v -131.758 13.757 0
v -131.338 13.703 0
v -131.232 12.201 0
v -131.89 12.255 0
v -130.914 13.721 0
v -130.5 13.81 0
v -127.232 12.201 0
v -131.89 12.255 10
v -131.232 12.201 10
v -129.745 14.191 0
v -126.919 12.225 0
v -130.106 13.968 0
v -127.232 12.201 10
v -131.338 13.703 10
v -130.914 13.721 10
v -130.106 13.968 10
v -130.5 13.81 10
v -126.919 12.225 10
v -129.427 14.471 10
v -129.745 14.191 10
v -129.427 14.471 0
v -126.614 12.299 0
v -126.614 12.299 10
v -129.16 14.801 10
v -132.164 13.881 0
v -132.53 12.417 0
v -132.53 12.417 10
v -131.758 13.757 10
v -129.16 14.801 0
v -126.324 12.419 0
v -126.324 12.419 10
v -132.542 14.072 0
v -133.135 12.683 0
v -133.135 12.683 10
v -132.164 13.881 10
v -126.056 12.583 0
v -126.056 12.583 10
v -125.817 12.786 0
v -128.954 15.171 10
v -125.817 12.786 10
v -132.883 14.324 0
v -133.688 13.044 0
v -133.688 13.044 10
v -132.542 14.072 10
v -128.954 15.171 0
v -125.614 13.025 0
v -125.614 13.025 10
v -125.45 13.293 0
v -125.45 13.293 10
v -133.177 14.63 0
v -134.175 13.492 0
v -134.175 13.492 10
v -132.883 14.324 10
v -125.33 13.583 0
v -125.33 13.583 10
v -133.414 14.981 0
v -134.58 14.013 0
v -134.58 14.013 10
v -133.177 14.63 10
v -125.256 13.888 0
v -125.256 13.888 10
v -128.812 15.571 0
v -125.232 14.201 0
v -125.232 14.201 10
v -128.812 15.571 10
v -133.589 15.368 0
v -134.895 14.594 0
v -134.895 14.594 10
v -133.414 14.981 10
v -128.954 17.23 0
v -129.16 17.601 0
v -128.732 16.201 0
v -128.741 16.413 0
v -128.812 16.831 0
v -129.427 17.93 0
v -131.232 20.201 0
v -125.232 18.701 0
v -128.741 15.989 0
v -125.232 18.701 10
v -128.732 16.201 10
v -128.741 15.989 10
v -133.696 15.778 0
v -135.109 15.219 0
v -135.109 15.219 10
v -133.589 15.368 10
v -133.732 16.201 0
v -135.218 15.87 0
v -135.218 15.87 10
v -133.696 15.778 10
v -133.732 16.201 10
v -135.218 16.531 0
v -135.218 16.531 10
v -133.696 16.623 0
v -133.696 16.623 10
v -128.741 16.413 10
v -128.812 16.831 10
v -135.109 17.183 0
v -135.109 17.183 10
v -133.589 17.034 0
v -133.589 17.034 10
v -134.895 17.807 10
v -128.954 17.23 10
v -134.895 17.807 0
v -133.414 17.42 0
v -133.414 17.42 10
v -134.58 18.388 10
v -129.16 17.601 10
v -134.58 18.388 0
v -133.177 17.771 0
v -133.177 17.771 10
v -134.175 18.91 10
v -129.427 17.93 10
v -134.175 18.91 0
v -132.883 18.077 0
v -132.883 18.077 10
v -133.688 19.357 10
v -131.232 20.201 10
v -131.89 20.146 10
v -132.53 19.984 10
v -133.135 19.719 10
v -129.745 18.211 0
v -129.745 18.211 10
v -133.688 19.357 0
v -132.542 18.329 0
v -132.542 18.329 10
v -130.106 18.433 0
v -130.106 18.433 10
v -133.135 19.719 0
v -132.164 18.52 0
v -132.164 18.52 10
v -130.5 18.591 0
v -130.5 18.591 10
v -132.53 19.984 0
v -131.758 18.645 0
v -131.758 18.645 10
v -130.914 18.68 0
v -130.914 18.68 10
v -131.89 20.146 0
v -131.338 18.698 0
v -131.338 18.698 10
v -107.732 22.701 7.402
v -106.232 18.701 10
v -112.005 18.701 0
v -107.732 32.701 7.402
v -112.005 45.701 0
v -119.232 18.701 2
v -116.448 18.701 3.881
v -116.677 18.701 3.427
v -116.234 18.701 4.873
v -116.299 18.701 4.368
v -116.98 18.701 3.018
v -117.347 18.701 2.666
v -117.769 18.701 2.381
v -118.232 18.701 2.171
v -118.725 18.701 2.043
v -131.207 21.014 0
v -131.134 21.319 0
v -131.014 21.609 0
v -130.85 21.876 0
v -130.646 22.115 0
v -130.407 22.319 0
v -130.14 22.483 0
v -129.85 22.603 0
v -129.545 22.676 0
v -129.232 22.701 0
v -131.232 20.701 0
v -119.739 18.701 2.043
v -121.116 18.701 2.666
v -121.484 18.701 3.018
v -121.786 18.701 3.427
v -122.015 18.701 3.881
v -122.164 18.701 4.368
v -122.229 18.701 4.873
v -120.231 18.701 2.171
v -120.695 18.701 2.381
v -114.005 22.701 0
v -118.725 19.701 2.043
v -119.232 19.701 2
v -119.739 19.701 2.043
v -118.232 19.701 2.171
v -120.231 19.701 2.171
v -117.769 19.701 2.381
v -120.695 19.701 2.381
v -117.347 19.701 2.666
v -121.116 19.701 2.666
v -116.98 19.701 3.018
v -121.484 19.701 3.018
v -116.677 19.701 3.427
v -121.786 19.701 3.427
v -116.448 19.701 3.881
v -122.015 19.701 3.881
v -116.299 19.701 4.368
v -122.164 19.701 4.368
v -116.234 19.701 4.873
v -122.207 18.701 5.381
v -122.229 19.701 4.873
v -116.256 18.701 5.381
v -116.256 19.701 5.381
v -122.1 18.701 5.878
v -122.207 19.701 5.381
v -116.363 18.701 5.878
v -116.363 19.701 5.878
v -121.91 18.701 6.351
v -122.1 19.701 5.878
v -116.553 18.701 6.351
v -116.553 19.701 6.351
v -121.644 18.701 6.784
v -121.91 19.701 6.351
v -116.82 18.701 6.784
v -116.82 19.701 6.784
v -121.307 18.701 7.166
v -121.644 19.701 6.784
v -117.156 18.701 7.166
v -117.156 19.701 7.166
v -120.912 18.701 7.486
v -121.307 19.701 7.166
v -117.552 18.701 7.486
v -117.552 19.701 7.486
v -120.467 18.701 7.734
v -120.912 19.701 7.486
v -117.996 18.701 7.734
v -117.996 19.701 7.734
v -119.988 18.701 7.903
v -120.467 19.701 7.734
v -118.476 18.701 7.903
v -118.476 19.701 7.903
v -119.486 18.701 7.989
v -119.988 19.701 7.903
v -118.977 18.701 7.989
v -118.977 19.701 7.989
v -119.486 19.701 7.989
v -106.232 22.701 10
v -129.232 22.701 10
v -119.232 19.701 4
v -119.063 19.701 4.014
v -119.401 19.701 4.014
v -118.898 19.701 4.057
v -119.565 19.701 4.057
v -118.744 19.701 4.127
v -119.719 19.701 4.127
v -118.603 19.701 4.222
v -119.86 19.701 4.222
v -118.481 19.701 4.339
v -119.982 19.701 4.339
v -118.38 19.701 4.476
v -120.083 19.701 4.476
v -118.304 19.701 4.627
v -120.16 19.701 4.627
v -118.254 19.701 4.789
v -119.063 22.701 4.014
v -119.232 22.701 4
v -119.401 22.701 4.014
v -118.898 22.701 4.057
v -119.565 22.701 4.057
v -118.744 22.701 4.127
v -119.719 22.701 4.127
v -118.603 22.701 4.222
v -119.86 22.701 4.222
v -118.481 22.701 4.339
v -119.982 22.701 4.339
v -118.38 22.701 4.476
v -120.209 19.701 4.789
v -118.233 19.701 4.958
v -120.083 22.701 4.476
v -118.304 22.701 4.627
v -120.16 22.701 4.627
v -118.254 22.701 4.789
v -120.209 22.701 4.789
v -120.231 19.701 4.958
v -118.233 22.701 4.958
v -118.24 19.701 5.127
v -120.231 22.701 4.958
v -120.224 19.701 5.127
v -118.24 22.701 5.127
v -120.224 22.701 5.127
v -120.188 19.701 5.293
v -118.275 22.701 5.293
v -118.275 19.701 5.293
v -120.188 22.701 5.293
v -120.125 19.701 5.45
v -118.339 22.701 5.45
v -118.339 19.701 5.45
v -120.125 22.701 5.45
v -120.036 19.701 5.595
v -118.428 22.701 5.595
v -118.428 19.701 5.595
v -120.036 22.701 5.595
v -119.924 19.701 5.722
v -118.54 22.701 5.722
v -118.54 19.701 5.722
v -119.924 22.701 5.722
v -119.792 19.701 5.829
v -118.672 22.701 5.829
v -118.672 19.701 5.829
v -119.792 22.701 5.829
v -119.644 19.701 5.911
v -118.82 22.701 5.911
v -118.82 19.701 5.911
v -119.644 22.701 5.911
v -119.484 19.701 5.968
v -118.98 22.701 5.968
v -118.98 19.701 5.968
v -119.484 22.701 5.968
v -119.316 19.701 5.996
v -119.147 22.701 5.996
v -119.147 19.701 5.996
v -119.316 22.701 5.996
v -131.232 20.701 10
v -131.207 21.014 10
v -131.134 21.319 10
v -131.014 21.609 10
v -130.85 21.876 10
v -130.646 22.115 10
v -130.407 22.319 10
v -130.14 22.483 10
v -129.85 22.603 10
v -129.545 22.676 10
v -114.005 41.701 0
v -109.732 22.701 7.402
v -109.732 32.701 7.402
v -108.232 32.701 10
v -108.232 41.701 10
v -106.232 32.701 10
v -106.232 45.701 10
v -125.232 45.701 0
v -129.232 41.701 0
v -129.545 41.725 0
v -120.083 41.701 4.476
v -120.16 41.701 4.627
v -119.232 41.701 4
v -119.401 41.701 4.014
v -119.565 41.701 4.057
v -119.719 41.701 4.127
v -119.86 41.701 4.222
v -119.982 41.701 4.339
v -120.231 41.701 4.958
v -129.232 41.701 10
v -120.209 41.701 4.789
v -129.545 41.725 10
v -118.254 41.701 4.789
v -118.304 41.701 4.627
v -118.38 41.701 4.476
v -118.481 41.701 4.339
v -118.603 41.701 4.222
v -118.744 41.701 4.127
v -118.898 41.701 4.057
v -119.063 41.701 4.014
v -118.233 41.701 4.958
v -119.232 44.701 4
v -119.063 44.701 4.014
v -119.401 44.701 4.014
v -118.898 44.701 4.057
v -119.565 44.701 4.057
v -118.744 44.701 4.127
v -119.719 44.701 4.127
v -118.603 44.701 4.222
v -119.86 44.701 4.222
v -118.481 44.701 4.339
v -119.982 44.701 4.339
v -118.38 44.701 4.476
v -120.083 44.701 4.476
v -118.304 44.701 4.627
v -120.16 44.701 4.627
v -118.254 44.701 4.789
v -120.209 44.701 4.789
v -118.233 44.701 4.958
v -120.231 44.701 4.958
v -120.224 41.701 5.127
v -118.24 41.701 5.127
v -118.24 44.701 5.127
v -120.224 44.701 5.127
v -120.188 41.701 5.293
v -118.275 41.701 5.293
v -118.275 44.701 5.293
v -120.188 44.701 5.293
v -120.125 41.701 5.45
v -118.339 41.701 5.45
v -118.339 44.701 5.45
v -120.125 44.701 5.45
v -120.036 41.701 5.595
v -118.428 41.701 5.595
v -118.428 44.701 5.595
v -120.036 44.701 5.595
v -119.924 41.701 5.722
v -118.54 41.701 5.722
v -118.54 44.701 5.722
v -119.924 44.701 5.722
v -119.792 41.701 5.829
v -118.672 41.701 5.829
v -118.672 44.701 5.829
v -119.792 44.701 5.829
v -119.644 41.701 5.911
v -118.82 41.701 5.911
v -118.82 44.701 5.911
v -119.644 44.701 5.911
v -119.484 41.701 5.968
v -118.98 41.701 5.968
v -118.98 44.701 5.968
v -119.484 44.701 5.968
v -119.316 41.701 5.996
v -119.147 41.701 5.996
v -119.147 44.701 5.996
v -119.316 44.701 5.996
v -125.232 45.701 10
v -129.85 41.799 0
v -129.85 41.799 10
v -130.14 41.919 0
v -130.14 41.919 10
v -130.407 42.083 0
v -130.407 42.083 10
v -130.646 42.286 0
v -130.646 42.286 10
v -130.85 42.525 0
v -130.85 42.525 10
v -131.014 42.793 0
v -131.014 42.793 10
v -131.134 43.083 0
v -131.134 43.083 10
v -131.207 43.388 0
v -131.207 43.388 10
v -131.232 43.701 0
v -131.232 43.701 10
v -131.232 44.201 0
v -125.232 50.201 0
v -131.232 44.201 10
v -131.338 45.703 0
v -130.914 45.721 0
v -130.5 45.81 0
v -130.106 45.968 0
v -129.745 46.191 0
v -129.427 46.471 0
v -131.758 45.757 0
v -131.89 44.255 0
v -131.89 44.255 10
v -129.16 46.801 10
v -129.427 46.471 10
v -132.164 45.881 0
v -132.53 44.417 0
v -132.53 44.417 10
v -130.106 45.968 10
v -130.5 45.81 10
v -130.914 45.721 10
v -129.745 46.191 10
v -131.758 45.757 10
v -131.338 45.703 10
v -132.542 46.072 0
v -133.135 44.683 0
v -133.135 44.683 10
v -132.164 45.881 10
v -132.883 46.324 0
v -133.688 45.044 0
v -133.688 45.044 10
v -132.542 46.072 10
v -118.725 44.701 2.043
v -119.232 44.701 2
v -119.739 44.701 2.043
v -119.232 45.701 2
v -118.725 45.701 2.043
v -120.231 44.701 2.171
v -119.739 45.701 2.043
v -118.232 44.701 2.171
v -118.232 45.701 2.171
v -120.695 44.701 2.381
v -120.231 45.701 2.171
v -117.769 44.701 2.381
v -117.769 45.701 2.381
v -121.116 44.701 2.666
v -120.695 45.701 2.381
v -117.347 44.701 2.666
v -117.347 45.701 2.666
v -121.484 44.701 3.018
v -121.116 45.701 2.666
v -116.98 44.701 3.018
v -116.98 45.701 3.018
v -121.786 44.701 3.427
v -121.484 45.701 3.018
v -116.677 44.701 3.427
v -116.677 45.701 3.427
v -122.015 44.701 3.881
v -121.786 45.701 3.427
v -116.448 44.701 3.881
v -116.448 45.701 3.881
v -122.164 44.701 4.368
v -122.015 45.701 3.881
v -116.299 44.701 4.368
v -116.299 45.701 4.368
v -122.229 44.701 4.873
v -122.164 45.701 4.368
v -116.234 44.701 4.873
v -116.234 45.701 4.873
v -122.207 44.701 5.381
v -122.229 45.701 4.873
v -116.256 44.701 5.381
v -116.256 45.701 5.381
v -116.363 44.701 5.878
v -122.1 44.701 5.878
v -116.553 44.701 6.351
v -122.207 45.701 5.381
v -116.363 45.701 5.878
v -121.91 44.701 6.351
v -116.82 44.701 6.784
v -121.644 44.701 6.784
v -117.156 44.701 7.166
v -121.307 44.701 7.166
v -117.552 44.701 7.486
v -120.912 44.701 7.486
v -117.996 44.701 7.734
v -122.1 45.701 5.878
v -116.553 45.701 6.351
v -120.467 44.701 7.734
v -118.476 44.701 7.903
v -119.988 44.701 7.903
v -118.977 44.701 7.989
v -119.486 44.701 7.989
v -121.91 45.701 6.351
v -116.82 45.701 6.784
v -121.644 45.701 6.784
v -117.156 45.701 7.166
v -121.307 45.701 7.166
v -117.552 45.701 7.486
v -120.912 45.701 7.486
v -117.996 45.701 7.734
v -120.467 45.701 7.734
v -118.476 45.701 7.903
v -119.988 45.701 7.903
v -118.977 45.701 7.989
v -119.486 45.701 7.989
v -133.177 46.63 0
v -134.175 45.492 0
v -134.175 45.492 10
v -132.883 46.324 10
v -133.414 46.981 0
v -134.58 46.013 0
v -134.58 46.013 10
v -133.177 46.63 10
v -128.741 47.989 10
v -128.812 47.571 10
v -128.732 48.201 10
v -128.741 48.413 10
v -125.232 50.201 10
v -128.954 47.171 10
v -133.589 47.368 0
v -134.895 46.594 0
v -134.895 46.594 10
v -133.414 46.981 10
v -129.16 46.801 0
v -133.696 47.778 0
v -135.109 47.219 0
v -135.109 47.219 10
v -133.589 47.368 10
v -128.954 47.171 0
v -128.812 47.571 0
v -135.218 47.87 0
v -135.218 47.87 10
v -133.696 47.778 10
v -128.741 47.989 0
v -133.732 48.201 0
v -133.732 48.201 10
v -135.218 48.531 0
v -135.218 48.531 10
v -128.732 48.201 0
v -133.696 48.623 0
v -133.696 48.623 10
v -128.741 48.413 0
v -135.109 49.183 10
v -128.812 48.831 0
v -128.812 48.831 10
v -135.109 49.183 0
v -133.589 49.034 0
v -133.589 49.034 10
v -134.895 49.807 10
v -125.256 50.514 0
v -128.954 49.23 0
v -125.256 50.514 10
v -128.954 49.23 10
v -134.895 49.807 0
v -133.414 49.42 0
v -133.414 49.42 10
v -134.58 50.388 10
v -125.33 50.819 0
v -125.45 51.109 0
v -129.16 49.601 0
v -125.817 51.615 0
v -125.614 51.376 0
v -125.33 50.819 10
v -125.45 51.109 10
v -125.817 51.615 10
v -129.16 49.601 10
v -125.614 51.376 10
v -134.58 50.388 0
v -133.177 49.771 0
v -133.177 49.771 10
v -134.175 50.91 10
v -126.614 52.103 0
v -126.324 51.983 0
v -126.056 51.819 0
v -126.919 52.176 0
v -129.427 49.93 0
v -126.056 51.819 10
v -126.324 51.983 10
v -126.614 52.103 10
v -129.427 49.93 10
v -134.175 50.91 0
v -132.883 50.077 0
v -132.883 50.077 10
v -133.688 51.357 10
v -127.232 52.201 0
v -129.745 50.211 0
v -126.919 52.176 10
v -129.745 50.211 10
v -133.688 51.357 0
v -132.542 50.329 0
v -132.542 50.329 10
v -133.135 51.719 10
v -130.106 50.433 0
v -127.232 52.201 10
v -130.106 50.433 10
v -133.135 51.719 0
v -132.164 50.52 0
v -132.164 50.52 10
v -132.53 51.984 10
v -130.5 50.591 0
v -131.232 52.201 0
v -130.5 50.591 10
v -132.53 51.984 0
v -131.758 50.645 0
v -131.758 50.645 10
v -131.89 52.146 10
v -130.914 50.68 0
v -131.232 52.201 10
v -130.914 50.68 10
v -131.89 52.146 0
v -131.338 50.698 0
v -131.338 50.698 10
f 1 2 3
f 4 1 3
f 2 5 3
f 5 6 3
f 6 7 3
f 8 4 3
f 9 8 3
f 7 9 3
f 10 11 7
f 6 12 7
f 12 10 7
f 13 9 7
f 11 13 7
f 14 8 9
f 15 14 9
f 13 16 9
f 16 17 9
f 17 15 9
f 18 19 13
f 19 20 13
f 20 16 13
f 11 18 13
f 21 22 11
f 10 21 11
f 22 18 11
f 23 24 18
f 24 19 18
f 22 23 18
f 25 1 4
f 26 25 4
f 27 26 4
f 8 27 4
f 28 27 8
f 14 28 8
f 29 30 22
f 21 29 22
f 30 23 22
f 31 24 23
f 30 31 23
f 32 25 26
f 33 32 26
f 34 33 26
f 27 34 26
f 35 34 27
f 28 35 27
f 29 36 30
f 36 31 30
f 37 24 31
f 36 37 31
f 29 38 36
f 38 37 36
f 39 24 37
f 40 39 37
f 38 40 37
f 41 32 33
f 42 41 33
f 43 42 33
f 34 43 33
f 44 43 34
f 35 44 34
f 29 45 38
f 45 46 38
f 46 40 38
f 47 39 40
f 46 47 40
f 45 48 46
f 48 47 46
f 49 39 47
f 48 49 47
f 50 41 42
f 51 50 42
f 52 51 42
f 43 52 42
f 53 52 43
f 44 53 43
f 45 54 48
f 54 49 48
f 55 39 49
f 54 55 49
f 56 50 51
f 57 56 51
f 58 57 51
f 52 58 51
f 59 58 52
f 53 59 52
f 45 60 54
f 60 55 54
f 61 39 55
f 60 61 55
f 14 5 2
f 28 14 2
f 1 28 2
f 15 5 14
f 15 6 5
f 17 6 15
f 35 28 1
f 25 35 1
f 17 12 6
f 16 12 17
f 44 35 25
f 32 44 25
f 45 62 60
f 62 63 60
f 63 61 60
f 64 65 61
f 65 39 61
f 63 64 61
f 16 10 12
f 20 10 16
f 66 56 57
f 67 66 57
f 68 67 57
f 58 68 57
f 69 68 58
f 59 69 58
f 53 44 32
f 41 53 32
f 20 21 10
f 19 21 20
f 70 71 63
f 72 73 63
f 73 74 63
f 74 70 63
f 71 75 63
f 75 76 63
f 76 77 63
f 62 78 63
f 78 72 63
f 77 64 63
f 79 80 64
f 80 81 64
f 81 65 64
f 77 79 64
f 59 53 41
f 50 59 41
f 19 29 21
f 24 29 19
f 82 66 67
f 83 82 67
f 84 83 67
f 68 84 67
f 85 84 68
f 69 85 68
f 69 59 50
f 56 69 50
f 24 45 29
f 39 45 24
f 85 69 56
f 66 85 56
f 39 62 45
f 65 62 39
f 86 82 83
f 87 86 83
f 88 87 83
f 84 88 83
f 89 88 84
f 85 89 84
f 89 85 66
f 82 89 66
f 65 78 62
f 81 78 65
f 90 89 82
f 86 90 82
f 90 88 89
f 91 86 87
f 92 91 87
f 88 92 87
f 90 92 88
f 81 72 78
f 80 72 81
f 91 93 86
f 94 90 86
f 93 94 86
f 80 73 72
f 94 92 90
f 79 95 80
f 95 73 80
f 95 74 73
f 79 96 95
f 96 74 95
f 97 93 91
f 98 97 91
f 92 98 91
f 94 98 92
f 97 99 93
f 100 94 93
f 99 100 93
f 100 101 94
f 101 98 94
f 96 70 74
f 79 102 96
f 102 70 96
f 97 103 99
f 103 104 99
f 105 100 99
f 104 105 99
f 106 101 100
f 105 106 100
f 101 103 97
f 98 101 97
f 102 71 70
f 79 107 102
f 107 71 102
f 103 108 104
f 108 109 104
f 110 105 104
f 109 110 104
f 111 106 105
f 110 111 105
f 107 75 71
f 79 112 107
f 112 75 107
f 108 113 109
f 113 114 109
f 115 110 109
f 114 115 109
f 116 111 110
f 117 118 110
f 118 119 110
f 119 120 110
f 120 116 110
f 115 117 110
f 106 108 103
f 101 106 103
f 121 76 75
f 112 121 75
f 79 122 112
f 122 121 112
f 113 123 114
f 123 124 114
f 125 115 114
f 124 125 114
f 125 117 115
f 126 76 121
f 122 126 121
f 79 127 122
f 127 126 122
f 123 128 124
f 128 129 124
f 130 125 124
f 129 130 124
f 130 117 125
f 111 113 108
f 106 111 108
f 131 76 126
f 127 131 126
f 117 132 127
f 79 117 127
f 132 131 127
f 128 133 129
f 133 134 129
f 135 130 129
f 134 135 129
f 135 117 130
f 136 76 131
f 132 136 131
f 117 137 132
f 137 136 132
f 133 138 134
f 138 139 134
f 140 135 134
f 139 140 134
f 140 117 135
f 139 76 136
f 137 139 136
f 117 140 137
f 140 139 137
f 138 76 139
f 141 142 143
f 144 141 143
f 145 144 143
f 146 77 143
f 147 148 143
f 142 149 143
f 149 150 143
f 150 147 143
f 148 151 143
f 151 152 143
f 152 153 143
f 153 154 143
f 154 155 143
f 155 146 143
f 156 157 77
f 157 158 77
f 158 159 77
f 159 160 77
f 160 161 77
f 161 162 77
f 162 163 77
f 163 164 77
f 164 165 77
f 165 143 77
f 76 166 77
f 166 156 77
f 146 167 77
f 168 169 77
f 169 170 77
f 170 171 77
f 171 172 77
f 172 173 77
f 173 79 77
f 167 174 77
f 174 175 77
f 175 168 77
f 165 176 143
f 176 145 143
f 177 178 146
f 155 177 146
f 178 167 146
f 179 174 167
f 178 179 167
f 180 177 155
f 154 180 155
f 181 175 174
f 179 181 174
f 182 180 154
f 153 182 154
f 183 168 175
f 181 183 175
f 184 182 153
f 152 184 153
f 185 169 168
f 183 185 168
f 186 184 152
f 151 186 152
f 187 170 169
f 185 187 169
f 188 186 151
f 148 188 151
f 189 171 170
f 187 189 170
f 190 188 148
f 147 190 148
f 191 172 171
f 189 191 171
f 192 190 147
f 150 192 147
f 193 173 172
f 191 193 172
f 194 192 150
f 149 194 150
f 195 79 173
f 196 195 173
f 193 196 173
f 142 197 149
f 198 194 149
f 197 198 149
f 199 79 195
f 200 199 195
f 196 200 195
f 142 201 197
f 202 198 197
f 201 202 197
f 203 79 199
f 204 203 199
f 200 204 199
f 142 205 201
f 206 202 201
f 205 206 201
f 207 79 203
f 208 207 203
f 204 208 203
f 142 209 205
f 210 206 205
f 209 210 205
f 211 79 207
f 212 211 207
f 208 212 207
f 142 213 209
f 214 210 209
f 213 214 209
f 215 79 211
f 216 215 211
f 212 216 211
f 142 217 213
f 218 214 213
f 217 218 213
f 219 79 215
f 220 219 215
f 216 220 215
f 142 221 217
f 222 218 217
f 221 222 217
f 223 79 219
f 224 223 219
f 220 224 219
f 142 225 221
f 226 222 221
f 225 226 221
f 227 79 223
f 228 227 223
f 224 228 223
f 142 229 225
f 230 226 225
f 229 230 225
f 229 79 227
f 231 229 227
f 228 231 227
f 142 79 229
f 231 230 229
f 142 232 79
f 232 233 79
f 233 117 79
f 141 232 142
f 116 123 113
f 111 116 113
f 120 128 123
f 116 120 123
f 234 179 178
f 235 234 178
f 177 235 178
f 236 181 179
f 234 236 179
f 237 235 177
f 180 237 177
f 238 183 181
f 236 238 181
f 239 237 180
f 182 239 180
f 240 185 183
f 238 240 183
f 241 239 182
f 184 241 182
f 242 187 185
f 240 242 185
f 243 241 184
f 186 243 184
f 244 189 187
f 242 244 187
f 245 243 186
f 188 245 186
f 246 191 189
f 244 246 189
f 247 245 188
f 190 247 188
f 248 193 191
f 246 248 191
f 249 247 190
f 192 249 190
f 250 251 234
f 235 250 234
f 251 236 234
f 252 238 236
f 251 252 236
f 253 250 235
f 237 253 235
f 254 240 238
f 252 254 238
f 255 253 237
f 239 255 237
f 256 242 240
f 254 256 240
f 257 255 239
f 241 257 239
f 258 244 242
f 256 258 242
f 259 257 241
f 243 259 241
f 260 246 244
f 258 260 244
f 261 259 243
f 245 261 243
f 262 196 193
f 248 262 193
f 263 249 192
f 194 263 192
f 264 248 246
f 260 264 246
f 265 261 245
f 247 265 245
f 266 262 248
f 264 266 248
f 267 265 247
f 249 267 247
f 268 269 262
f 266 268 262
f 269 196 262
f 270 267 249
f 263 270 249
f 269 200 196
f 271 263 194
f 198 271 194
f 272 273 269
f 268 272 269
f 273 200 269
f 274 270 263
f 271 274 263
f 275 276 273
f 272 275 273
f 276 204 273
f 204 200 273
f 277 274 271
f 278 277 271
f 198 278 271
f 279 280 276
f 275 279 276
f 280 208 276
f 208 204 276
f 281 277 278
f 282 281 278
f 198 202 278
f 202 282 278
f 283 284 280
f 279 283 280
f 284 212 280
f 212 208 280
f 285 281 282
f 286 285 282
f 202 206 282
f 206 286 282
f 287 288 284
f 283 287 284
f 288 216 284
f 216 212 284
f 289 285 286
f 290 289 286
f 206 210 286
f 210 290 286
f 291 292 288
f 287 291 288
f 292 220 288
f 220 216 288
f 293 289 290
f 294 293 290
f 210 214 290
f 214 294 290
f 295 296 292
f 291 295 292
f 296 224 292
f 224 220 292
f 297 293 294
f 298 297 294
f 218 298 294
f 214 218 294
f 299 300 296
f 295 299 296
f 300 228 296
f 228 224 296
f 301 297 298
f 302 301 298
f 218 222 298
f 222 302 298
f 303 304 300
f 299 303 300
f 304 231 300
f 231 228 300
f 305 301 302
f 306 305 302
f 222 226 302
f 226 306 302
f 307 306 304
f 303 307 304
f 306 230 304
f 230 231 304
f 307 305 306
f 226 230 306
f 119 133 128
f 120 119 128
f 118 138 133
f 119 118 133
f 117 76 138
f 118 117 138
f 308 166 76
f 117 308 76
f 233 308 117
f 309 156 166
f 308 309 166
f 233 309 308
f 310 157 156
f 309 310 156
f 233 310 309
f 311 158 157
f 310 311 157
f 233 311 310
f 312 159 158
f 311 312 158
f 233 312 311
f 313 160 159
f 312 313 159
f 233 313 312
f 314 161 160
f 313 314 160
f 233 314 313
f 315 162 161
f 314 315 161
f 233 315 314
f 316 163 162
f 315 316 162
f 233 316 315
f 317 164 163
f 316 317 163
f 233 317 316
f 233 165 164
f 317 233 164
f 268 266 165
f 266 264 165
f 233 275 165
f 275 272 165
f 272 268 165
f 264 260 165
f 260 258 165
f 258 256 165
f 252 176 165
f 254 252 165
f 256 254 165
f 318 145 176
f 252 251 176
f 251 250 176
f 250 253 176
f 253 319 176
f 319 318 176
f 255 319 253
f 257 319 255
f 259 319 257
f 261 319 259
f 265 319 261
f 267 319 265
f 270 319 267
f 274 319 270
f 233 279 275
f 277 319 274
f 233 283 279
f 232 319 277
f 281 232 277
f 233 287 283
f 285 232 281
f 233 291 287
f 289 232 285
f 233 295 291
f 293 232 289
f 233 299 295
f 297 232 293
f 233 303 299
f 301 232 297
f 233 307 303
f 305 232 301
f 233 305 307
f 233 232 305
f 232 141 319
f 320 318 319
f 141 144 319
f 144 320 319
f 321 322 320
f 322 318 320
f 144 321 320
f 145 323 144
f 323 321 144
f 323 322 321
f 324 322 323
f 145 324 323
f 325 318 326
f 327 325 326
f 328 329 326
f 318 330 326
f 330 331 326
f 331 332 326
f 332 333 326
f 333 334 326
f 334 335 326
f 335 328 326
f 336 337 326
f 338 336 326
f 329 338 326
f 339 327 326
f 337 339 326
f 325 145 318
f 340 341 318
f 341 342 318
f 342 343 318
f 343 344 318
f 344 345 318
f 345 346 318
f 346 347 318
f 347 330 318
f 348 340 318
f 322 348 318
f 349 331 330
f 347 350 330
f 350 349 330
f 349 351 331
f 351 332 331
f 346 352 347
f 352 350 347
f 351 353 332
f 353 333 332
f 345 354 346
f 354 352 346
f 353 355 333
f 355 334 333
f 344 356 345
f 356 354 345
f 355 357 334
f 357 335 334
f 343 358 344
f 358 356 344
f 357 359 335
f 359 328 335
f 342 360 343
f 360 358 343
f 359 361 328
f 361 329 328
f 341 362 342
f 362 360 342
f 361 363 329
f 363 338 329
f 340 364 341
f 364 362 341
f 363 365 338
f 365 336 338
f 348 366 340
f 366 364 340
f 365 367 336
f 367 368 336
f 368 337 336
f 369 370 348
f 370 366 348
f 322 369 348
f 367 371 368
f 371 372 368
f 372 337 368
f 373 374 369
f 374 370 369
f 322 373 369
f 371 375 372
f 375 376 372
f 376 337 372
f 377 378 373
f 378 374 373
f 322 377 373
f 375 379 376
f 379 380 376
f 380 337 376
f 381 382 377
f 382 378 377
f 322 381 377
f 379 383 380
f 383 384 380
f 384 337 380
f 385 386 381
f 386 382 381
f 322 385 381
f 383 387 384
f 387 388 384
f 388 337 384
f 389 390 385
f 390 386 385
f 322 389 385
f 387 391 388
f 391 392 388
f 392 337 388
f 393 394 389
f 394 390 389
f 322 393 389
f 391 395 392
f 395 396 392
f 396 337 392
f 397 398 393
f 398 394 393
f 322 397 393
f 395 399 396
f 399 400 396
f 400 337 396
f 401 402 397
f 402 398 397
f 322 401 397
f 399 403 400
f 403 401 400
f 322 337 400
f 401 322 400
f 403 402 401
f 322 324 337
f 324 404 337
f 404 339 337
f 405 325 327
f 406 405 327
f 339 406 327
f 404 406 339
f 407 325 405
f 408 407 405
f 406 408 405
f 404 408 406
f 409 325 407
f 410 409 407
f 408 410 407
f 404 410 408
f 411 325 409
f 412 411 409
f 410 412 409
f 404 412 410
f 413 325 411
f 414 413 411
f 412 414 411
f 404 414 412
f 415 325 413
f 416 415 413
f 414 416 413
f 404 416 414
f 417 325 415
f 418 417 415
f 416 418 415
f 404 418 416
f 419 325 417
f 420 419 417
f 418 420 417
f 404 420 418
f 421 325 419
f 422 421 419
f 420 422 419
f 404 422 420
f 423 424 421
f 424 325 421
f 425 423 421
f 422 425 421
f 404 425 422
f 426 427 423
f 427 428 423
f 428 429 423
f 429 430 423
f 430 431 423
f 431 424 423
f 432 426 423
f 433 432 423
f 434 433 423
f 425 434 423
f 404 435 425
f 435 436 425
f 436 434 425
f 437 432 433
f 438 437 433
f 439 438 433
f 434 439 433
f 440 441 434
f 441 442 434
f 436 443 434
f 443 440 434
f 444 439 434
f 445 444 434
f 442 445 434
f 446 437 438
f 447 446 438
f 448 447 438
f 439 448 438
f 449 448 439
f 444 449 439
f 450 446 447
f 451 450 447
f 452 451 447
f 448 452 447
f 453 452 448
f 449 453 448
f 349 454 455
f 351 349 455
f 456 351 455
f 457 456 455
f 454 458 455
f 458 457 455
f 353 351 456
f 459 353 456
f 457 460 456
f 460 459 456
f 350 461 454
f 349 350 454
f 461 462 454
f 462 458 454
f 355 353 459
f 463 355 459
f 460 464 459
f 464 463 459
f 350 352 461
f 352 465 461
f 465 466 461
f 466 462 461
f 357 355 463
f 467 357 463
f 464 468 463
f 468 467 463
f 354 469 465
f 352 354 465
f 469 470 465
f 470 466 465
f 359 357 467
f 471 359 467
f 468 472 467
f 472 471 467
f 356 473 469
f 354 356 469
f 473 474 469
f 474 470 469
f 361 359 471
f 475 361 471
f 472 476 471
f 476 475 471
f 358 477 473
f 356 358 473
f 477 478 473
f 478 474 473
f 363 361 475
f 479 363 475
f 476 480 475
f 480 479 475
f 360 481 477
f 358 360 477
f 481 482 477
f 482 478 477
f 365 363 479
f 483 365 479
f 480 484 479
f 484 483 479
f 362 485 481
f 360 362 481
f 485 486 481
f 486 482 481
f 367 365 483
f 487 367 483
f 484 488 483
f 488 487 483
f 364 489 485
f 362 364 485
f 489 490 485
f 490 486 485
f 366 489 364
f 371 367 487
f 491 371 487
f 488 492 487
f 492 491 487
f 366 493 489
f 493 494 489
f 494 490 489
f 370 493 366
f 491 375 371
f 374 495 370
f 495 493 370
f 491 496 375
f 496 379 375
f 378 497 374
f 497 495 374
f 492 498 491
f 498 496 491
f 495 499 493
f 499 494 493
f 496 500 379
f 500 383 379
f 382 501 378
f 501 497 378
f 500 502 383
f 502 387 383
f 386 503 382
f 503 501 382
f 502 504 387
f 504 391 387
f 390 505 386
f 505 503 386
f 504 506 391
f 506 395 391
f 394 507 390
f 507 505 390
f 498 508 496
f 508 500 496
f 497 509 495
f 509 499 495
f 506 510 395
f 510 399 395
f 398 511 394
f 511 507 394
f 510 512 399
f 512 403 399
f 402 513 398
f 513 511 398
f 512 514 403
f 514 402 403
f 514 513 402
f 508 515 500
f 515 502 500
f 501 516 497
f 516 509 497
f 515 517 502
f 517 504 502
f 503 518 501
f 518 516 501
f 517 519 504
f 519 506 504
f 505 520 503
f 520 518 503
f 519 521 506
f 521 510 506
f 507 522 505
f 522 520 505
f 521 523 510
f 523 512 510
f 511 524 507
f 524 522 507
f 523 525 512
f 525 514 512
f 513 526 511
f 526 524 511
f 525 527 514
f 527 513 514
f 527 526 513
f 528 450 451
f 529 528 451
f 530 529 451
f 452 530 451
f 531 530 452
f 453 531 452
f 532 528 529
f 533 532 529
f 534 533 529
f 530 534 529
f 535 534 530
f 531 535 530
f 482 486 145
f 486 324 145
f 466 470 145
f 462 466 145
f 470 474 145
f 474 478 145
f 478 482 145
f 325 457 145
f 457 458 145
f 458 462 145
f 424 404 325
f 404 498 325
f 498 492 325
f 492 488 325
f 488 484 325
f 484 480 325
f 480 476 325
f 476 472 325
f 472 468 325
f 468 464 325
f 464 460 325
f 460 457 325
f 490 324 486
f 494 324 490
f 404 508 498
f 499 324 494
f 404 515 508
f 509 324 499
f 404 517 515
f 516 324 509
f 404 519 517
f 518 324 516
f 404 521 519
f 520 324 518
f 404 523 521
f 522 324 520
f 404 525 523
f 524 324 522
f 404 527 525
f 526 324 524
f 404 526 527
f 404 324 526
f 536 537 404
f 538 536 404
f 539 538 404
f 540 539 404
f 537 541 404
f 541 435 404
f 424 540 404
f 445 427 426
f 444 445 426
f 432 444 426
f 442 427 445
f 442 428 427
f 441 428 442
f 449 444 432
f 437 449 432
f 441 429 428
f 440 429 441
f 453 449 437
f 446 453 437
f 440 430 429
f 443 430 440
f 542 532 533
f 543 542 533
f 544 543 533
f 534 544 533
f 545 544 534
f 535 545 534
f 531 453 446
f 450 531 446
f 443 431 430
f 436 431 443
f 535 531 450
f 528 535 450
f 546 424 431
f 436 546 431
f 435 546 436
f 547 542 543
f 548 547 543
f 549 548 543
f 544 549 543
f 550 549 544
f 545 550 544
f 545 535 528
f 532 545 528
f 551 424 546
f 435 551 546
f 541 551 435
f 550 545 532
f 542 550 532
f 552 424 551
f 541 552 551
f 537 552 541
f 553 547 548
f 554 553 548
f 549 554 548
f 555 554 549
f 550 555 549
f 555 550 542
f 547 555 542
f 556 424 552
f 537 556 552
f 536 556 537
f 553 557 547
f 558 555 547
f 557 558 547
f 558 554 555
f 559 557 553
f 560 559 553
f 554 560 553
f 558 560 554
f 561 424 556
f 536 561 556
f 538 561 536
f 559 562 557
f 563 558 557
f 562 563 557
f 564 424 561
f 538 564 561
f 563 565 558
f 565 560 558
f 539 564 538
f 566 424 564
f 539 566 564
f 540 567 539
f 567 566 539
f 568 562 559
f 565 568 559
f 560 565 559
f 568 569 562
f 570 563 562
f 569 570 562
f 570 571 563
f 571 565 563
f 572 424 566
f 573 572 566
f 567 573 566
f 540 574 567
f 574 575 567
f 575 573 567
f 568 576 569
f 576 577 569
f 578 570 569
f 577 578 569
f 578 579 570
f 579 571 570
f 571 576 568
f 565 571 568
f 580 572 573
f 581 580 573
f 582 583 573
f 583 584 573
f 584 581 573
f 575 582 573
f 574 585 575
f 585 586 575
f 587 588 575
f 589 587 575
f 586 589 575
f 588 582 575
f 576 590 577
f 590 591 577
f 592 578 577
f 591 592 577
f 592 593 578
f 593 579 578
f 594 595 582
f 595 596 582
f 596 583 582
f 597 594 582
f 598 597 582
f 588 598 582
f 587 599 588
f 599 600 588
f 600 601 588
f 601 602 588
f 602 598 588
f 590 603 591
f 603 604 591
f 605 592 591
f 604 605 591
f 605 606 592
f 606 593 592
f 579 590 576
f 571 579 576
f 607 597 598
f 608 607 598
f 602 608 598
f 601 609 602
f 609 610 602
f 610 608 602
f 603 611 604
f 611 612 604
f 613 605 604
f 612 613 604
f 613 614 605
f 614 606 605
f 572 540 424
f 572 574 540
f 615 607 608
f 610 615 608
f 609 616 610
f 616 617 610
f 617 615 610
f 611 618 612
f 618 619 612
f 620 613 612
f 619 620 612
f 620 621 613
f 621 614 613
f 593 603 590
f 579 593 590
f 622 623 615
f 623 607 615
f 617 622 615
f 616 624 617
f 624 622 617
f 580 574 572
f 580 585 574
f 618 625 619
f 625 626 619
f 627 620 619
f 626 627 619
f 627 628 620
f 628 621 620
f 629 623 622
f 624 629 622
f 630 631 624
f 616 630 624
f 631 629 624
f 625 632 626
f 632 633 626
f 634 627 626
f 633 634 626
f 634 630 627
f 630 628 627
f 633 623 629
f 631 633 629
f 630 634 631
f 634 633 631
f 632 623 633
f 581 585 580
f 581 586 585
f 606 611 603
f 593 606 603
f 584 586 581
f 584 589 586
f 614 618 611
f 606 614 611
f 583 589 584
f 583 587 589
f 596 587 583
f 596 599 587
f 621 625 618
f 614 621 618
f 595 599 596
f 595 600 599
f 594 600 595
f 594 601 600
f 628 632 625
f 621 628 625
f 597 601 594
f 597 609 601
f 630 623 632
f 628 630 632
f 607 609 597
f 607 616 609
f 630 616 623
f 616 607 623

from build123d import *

# Parameters (mm, degrees)
CROQUIS1_R                = 2.5
SALIENTE_EXTRUIR1_DEPTH   = 10
CROQUIS2_R                = 1
CORTAR_EXTRUIR1_DEPTH     = 4
SALIENTE_EXTRUIR2_DEPTH   = 13.5
CROQUIS4_R                = 3
CORTAR_EXTRUIR2_DEPTH     = 1
REDONDEO1_R               = 2
CORTAR_EXTRUIR3_START     = -2.598076211
CORTAR_EXTRUIR3_OUTLINE_W = 6
CORTAR_EXTRUIR3_OUTLINE_H = 10
CORTAR_EXTRUIR3_DEPTH     = 2.598076211


# Read off the part's stored shape, not the designer's step: Cortar-Extruir3
with BuildPart() as part:
    # Croquis1 → Saliente-Extruir1 (new body)
    with BuildSketch(Plane.XY):
        with BuildLine():
            Line((-106.231635218, 22.700651543), (-131.231635218, 22.700651543))
            Line((-131.231635218, 22.700651543), (-131.231635218, 20.200651543))
            ThreePointArc((-131.231635218, 20.200651543), (-135.231635218, 16.200651543), (-131.231635218, 12.200651543))
            Line((-131.231635218, 12.200651543), (-125.231635218, 12.200651543))
            Line((-125.231635218, 12.200651543), (-125.231635218, 18.700651543))
            Line((-125.231635218, 18.700651543), (-106.231635218, 18.700651543))
            Line((-106.231635218, 18.700651543), (-106.231635218, 22.700651543))
        make_face()
        with Locations((-131.231635218, 16.200651543)):
            Circle(CROQUIS1_R, mode=Mode.SUBTRACT)
    extrude(amount=SALIENTE_EXTRUIR1_DEPTH)

    # Croquis2 → Cortar-Extruir1 (cut)
    with BuildSketch(Plane.XZ.offset(-18.700651543)):
        with Locations(Location((-119.231635218, 5, 0), (0, 0, 270))):
            Circle(CROQUIS2_R)
        Polygon((-106.231635218, 0), (-106.231635218, 10), (-112.00513791, 0), align=None)
    extrude(amount=-CORTAR_EXTRUIR1_DEPTH, mode=Mode.SUBTRACT)

    # Croquis3 → Saliente-Extruir2 (add)
    with BuildSketch(Plane.XZ.offset(-18.700651543)):
        Polygon((-106.231635218, 10), (-108.231635218, 10), (-114.00513791, 0), (-112.00513791, 0), align=None)
    extrude(amount=-SALIENTE_EXTRUIR2_DEPTH)

    # Croquis4 → Cortar-Extruir2 (cut)
    with BuildSketch(Plane.XZ.offset(-18.700651543)):
        with Locations(Location((-119.231635218, 5, 0), (0, 0, 270))):
            Circle(CROQUIS4_R)
    extrude(amount=-CORTAR_EXTRUIR2_DEPTH, mode=Mode.SUBTRACT)

    # Redondeo1
    redondeo1_edges = [part.edges().sort_by_distance(p)[0] for p in [
        (-125.231635218, 12.200651543, 5),
        (-131.231635218, 22.700651543, 5),
    ]]
    fillet(redondeo1_edges, radius=REDONDEO1_R)

    # Simetría1: part across plane


with BuildPart() as part_1:
    add(part.part)
    add(part.part.mirror(Plane(origin=(0, 32.200651543, 0), x_dir=(0, 0, 1), z_dir=(0, -1, 0))))

    # Cortar-Extruir3 outline → Cortar-Extruir3 (cut)
    with BuildSketch(Plane.XY.offset(10).offset(CORTAR_EXTRUIR3_START)):
        with Locations((-108, 27.700651543)):
            Rectangle(CORTAR_EXTRUIR3_OUTLINE_W, CORTAR_EXTRUIR3_OUTLINE_H)
    extrude(amount=CORTAR_EXTRUIR3_DEPTH, mode=Mode.SUBTRACT)


solid = part_1.part
